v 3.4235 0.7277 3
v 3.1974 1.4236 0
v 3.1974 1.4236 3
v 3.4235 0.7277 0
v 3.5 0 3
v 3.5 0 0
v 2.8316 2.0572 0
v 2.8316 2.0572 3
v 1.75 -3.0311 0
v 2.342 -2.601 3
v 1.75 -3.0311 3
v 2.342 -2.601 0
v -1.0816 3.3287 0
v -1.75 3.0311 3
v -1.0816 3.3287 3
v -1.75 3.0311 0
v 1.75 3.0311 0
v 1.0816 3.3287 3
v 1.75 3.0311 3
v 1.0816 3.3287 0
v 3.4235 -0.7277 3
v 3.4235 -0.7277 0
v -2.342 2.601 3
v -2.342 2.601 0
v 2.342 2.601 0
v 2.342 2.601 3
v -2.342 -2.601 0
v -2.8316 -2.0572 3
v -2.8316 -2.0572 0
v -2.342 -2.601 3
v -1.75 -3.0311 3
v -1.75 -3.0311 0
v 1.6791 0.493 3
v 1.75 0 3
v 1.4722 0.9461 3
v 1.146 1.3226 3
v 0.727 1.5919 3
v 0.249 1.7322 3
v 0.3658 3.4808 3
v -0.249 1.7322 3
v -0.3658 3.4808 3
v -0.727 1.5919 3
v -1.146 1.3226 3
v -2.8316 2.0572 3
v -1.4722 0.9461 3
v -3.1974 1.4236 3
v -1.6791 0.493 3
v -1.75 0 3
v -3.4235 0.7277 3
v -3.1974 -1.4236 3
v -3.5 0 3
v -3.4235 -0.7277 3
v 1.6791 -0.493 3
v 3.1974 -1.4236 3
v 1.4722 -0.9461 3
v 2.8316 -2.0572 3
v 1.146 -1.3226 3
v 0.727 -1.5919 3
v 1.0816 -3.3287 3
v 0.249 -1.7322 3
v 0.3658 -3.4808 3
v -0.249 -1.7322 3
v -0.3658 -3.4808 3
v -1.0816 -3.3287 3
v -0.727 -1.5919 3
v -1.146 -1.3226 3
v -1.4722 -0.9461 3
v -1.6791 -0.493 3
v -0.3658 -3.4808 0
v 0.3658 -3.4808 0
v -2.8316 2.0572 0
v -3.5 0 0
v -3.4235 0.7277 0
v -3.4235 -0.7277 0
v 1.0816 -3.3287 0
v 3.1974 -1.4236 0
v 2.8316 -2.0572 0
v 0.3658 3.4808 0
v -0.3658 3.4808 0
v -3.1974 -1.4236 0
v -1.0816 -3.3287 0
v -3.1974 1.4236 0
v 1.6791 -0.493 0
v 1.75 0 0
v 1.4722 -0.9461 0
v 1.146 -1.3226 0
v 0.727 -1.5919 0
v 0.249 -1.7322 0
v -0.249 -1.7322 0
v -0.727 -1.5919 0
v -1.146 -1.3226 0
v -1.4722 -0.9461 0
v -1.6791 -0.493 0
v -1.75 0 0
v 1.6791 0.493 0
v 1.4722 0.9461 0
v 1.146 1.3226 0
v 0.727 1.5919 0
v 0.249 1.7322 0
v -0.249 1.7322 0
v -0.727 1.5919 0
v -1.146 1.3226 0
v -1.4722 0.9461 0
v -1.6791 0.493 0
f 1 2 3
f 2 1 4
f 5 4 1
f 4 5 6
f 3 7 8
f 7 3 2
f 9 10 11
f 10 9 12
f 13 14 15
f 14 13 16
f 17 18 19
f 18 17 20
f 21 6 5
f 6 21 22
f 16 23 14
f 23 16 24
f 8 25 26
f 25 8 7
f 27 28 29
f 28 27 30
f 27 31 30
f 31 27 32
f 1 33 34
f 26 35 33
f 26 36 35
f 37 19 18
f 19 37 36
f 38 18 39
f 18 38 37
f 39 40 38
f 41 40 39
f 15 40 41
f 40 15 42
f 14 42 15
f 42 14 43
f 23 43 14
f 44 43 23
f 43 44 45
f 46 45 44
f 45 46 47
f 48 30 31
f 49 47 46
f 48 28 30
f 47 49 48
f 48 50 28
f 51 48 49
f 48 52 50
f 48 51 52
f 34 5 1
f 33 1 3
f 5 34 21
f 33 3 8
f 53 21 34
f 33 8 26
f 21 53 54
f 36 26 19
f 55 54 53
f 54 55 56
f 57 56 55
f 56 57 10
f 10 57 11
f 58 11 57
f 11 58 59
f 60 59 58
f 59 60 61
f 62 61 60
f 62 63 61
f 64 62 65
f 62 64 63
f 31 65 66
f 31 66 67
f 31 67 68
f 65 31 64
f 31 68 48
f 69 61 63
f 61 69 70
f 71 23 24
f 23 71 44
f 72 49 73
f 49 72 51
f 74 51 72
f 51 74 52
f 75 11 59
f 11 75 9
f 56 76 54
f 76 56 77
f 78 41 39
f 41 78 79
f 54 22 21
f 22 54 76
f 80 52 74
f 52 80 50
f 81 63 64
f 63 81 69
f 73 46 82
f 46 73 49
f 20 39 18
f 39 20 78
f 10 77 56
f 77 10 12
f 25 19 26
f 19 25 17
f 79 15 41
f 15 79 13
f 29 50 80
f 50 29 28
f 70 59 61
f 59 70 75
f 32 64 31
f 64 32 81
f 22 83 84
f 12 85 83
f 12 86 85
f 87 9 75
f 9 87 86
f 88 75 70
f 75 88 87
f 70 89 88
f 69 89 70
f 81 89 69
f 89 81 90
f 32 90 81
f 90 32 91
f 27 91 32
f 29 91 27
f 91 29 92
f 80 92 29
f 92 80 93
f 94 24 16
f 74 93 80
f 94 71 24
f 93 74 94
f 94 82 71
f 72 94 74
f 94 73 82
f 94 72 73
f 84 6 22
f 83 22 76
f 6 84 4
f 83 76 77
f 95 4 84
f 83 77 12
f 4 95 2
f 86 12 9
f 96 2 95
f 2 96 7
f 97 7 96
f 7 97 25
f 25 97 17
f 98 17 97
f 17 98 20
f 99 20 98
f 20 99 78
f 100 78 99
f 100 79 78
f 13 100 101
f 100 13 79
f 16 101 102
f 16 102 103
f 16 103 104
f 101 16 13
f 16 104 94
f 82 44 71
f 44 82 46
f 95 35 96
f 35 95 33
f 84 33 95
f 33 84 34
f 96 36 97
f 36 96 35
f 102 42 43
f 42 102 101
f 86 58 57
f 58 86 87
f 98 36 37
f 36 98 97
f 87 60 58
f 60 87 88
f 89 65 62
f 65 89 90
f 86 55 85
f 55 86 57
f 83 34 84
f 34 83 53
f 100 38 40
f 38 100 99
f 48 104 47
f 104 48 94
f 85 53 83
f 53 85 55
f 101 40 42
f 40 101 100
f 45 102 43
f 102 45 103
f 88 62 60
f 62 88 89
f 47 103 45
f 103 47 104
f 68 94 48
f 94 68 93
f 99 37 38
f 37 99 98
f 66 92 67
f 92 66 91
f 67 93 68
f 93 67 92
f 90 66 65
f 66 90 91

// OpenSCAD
// Simple stepper motor screw spacers for huvud board
//
// Copyright (C) 2021  Kevin O'Connor <kevin@koconnor.net>
//
// This file may be distributed under the terms of the GNU GPLv3 license.

screw_dia = 3.5;
spacer_dia = 7;
CUT = 0.01;
$fs = 0.5;

module stepper_spacer(height) {
    difference() {
        cylinder(d=spacer_dia, h=height);
        translate([0, 0, -CUT])
        cylinder(d=screw_dia, h=height + 2*CUT);
    }
}

//
// Object selection
//

stepper_spacer(3);
